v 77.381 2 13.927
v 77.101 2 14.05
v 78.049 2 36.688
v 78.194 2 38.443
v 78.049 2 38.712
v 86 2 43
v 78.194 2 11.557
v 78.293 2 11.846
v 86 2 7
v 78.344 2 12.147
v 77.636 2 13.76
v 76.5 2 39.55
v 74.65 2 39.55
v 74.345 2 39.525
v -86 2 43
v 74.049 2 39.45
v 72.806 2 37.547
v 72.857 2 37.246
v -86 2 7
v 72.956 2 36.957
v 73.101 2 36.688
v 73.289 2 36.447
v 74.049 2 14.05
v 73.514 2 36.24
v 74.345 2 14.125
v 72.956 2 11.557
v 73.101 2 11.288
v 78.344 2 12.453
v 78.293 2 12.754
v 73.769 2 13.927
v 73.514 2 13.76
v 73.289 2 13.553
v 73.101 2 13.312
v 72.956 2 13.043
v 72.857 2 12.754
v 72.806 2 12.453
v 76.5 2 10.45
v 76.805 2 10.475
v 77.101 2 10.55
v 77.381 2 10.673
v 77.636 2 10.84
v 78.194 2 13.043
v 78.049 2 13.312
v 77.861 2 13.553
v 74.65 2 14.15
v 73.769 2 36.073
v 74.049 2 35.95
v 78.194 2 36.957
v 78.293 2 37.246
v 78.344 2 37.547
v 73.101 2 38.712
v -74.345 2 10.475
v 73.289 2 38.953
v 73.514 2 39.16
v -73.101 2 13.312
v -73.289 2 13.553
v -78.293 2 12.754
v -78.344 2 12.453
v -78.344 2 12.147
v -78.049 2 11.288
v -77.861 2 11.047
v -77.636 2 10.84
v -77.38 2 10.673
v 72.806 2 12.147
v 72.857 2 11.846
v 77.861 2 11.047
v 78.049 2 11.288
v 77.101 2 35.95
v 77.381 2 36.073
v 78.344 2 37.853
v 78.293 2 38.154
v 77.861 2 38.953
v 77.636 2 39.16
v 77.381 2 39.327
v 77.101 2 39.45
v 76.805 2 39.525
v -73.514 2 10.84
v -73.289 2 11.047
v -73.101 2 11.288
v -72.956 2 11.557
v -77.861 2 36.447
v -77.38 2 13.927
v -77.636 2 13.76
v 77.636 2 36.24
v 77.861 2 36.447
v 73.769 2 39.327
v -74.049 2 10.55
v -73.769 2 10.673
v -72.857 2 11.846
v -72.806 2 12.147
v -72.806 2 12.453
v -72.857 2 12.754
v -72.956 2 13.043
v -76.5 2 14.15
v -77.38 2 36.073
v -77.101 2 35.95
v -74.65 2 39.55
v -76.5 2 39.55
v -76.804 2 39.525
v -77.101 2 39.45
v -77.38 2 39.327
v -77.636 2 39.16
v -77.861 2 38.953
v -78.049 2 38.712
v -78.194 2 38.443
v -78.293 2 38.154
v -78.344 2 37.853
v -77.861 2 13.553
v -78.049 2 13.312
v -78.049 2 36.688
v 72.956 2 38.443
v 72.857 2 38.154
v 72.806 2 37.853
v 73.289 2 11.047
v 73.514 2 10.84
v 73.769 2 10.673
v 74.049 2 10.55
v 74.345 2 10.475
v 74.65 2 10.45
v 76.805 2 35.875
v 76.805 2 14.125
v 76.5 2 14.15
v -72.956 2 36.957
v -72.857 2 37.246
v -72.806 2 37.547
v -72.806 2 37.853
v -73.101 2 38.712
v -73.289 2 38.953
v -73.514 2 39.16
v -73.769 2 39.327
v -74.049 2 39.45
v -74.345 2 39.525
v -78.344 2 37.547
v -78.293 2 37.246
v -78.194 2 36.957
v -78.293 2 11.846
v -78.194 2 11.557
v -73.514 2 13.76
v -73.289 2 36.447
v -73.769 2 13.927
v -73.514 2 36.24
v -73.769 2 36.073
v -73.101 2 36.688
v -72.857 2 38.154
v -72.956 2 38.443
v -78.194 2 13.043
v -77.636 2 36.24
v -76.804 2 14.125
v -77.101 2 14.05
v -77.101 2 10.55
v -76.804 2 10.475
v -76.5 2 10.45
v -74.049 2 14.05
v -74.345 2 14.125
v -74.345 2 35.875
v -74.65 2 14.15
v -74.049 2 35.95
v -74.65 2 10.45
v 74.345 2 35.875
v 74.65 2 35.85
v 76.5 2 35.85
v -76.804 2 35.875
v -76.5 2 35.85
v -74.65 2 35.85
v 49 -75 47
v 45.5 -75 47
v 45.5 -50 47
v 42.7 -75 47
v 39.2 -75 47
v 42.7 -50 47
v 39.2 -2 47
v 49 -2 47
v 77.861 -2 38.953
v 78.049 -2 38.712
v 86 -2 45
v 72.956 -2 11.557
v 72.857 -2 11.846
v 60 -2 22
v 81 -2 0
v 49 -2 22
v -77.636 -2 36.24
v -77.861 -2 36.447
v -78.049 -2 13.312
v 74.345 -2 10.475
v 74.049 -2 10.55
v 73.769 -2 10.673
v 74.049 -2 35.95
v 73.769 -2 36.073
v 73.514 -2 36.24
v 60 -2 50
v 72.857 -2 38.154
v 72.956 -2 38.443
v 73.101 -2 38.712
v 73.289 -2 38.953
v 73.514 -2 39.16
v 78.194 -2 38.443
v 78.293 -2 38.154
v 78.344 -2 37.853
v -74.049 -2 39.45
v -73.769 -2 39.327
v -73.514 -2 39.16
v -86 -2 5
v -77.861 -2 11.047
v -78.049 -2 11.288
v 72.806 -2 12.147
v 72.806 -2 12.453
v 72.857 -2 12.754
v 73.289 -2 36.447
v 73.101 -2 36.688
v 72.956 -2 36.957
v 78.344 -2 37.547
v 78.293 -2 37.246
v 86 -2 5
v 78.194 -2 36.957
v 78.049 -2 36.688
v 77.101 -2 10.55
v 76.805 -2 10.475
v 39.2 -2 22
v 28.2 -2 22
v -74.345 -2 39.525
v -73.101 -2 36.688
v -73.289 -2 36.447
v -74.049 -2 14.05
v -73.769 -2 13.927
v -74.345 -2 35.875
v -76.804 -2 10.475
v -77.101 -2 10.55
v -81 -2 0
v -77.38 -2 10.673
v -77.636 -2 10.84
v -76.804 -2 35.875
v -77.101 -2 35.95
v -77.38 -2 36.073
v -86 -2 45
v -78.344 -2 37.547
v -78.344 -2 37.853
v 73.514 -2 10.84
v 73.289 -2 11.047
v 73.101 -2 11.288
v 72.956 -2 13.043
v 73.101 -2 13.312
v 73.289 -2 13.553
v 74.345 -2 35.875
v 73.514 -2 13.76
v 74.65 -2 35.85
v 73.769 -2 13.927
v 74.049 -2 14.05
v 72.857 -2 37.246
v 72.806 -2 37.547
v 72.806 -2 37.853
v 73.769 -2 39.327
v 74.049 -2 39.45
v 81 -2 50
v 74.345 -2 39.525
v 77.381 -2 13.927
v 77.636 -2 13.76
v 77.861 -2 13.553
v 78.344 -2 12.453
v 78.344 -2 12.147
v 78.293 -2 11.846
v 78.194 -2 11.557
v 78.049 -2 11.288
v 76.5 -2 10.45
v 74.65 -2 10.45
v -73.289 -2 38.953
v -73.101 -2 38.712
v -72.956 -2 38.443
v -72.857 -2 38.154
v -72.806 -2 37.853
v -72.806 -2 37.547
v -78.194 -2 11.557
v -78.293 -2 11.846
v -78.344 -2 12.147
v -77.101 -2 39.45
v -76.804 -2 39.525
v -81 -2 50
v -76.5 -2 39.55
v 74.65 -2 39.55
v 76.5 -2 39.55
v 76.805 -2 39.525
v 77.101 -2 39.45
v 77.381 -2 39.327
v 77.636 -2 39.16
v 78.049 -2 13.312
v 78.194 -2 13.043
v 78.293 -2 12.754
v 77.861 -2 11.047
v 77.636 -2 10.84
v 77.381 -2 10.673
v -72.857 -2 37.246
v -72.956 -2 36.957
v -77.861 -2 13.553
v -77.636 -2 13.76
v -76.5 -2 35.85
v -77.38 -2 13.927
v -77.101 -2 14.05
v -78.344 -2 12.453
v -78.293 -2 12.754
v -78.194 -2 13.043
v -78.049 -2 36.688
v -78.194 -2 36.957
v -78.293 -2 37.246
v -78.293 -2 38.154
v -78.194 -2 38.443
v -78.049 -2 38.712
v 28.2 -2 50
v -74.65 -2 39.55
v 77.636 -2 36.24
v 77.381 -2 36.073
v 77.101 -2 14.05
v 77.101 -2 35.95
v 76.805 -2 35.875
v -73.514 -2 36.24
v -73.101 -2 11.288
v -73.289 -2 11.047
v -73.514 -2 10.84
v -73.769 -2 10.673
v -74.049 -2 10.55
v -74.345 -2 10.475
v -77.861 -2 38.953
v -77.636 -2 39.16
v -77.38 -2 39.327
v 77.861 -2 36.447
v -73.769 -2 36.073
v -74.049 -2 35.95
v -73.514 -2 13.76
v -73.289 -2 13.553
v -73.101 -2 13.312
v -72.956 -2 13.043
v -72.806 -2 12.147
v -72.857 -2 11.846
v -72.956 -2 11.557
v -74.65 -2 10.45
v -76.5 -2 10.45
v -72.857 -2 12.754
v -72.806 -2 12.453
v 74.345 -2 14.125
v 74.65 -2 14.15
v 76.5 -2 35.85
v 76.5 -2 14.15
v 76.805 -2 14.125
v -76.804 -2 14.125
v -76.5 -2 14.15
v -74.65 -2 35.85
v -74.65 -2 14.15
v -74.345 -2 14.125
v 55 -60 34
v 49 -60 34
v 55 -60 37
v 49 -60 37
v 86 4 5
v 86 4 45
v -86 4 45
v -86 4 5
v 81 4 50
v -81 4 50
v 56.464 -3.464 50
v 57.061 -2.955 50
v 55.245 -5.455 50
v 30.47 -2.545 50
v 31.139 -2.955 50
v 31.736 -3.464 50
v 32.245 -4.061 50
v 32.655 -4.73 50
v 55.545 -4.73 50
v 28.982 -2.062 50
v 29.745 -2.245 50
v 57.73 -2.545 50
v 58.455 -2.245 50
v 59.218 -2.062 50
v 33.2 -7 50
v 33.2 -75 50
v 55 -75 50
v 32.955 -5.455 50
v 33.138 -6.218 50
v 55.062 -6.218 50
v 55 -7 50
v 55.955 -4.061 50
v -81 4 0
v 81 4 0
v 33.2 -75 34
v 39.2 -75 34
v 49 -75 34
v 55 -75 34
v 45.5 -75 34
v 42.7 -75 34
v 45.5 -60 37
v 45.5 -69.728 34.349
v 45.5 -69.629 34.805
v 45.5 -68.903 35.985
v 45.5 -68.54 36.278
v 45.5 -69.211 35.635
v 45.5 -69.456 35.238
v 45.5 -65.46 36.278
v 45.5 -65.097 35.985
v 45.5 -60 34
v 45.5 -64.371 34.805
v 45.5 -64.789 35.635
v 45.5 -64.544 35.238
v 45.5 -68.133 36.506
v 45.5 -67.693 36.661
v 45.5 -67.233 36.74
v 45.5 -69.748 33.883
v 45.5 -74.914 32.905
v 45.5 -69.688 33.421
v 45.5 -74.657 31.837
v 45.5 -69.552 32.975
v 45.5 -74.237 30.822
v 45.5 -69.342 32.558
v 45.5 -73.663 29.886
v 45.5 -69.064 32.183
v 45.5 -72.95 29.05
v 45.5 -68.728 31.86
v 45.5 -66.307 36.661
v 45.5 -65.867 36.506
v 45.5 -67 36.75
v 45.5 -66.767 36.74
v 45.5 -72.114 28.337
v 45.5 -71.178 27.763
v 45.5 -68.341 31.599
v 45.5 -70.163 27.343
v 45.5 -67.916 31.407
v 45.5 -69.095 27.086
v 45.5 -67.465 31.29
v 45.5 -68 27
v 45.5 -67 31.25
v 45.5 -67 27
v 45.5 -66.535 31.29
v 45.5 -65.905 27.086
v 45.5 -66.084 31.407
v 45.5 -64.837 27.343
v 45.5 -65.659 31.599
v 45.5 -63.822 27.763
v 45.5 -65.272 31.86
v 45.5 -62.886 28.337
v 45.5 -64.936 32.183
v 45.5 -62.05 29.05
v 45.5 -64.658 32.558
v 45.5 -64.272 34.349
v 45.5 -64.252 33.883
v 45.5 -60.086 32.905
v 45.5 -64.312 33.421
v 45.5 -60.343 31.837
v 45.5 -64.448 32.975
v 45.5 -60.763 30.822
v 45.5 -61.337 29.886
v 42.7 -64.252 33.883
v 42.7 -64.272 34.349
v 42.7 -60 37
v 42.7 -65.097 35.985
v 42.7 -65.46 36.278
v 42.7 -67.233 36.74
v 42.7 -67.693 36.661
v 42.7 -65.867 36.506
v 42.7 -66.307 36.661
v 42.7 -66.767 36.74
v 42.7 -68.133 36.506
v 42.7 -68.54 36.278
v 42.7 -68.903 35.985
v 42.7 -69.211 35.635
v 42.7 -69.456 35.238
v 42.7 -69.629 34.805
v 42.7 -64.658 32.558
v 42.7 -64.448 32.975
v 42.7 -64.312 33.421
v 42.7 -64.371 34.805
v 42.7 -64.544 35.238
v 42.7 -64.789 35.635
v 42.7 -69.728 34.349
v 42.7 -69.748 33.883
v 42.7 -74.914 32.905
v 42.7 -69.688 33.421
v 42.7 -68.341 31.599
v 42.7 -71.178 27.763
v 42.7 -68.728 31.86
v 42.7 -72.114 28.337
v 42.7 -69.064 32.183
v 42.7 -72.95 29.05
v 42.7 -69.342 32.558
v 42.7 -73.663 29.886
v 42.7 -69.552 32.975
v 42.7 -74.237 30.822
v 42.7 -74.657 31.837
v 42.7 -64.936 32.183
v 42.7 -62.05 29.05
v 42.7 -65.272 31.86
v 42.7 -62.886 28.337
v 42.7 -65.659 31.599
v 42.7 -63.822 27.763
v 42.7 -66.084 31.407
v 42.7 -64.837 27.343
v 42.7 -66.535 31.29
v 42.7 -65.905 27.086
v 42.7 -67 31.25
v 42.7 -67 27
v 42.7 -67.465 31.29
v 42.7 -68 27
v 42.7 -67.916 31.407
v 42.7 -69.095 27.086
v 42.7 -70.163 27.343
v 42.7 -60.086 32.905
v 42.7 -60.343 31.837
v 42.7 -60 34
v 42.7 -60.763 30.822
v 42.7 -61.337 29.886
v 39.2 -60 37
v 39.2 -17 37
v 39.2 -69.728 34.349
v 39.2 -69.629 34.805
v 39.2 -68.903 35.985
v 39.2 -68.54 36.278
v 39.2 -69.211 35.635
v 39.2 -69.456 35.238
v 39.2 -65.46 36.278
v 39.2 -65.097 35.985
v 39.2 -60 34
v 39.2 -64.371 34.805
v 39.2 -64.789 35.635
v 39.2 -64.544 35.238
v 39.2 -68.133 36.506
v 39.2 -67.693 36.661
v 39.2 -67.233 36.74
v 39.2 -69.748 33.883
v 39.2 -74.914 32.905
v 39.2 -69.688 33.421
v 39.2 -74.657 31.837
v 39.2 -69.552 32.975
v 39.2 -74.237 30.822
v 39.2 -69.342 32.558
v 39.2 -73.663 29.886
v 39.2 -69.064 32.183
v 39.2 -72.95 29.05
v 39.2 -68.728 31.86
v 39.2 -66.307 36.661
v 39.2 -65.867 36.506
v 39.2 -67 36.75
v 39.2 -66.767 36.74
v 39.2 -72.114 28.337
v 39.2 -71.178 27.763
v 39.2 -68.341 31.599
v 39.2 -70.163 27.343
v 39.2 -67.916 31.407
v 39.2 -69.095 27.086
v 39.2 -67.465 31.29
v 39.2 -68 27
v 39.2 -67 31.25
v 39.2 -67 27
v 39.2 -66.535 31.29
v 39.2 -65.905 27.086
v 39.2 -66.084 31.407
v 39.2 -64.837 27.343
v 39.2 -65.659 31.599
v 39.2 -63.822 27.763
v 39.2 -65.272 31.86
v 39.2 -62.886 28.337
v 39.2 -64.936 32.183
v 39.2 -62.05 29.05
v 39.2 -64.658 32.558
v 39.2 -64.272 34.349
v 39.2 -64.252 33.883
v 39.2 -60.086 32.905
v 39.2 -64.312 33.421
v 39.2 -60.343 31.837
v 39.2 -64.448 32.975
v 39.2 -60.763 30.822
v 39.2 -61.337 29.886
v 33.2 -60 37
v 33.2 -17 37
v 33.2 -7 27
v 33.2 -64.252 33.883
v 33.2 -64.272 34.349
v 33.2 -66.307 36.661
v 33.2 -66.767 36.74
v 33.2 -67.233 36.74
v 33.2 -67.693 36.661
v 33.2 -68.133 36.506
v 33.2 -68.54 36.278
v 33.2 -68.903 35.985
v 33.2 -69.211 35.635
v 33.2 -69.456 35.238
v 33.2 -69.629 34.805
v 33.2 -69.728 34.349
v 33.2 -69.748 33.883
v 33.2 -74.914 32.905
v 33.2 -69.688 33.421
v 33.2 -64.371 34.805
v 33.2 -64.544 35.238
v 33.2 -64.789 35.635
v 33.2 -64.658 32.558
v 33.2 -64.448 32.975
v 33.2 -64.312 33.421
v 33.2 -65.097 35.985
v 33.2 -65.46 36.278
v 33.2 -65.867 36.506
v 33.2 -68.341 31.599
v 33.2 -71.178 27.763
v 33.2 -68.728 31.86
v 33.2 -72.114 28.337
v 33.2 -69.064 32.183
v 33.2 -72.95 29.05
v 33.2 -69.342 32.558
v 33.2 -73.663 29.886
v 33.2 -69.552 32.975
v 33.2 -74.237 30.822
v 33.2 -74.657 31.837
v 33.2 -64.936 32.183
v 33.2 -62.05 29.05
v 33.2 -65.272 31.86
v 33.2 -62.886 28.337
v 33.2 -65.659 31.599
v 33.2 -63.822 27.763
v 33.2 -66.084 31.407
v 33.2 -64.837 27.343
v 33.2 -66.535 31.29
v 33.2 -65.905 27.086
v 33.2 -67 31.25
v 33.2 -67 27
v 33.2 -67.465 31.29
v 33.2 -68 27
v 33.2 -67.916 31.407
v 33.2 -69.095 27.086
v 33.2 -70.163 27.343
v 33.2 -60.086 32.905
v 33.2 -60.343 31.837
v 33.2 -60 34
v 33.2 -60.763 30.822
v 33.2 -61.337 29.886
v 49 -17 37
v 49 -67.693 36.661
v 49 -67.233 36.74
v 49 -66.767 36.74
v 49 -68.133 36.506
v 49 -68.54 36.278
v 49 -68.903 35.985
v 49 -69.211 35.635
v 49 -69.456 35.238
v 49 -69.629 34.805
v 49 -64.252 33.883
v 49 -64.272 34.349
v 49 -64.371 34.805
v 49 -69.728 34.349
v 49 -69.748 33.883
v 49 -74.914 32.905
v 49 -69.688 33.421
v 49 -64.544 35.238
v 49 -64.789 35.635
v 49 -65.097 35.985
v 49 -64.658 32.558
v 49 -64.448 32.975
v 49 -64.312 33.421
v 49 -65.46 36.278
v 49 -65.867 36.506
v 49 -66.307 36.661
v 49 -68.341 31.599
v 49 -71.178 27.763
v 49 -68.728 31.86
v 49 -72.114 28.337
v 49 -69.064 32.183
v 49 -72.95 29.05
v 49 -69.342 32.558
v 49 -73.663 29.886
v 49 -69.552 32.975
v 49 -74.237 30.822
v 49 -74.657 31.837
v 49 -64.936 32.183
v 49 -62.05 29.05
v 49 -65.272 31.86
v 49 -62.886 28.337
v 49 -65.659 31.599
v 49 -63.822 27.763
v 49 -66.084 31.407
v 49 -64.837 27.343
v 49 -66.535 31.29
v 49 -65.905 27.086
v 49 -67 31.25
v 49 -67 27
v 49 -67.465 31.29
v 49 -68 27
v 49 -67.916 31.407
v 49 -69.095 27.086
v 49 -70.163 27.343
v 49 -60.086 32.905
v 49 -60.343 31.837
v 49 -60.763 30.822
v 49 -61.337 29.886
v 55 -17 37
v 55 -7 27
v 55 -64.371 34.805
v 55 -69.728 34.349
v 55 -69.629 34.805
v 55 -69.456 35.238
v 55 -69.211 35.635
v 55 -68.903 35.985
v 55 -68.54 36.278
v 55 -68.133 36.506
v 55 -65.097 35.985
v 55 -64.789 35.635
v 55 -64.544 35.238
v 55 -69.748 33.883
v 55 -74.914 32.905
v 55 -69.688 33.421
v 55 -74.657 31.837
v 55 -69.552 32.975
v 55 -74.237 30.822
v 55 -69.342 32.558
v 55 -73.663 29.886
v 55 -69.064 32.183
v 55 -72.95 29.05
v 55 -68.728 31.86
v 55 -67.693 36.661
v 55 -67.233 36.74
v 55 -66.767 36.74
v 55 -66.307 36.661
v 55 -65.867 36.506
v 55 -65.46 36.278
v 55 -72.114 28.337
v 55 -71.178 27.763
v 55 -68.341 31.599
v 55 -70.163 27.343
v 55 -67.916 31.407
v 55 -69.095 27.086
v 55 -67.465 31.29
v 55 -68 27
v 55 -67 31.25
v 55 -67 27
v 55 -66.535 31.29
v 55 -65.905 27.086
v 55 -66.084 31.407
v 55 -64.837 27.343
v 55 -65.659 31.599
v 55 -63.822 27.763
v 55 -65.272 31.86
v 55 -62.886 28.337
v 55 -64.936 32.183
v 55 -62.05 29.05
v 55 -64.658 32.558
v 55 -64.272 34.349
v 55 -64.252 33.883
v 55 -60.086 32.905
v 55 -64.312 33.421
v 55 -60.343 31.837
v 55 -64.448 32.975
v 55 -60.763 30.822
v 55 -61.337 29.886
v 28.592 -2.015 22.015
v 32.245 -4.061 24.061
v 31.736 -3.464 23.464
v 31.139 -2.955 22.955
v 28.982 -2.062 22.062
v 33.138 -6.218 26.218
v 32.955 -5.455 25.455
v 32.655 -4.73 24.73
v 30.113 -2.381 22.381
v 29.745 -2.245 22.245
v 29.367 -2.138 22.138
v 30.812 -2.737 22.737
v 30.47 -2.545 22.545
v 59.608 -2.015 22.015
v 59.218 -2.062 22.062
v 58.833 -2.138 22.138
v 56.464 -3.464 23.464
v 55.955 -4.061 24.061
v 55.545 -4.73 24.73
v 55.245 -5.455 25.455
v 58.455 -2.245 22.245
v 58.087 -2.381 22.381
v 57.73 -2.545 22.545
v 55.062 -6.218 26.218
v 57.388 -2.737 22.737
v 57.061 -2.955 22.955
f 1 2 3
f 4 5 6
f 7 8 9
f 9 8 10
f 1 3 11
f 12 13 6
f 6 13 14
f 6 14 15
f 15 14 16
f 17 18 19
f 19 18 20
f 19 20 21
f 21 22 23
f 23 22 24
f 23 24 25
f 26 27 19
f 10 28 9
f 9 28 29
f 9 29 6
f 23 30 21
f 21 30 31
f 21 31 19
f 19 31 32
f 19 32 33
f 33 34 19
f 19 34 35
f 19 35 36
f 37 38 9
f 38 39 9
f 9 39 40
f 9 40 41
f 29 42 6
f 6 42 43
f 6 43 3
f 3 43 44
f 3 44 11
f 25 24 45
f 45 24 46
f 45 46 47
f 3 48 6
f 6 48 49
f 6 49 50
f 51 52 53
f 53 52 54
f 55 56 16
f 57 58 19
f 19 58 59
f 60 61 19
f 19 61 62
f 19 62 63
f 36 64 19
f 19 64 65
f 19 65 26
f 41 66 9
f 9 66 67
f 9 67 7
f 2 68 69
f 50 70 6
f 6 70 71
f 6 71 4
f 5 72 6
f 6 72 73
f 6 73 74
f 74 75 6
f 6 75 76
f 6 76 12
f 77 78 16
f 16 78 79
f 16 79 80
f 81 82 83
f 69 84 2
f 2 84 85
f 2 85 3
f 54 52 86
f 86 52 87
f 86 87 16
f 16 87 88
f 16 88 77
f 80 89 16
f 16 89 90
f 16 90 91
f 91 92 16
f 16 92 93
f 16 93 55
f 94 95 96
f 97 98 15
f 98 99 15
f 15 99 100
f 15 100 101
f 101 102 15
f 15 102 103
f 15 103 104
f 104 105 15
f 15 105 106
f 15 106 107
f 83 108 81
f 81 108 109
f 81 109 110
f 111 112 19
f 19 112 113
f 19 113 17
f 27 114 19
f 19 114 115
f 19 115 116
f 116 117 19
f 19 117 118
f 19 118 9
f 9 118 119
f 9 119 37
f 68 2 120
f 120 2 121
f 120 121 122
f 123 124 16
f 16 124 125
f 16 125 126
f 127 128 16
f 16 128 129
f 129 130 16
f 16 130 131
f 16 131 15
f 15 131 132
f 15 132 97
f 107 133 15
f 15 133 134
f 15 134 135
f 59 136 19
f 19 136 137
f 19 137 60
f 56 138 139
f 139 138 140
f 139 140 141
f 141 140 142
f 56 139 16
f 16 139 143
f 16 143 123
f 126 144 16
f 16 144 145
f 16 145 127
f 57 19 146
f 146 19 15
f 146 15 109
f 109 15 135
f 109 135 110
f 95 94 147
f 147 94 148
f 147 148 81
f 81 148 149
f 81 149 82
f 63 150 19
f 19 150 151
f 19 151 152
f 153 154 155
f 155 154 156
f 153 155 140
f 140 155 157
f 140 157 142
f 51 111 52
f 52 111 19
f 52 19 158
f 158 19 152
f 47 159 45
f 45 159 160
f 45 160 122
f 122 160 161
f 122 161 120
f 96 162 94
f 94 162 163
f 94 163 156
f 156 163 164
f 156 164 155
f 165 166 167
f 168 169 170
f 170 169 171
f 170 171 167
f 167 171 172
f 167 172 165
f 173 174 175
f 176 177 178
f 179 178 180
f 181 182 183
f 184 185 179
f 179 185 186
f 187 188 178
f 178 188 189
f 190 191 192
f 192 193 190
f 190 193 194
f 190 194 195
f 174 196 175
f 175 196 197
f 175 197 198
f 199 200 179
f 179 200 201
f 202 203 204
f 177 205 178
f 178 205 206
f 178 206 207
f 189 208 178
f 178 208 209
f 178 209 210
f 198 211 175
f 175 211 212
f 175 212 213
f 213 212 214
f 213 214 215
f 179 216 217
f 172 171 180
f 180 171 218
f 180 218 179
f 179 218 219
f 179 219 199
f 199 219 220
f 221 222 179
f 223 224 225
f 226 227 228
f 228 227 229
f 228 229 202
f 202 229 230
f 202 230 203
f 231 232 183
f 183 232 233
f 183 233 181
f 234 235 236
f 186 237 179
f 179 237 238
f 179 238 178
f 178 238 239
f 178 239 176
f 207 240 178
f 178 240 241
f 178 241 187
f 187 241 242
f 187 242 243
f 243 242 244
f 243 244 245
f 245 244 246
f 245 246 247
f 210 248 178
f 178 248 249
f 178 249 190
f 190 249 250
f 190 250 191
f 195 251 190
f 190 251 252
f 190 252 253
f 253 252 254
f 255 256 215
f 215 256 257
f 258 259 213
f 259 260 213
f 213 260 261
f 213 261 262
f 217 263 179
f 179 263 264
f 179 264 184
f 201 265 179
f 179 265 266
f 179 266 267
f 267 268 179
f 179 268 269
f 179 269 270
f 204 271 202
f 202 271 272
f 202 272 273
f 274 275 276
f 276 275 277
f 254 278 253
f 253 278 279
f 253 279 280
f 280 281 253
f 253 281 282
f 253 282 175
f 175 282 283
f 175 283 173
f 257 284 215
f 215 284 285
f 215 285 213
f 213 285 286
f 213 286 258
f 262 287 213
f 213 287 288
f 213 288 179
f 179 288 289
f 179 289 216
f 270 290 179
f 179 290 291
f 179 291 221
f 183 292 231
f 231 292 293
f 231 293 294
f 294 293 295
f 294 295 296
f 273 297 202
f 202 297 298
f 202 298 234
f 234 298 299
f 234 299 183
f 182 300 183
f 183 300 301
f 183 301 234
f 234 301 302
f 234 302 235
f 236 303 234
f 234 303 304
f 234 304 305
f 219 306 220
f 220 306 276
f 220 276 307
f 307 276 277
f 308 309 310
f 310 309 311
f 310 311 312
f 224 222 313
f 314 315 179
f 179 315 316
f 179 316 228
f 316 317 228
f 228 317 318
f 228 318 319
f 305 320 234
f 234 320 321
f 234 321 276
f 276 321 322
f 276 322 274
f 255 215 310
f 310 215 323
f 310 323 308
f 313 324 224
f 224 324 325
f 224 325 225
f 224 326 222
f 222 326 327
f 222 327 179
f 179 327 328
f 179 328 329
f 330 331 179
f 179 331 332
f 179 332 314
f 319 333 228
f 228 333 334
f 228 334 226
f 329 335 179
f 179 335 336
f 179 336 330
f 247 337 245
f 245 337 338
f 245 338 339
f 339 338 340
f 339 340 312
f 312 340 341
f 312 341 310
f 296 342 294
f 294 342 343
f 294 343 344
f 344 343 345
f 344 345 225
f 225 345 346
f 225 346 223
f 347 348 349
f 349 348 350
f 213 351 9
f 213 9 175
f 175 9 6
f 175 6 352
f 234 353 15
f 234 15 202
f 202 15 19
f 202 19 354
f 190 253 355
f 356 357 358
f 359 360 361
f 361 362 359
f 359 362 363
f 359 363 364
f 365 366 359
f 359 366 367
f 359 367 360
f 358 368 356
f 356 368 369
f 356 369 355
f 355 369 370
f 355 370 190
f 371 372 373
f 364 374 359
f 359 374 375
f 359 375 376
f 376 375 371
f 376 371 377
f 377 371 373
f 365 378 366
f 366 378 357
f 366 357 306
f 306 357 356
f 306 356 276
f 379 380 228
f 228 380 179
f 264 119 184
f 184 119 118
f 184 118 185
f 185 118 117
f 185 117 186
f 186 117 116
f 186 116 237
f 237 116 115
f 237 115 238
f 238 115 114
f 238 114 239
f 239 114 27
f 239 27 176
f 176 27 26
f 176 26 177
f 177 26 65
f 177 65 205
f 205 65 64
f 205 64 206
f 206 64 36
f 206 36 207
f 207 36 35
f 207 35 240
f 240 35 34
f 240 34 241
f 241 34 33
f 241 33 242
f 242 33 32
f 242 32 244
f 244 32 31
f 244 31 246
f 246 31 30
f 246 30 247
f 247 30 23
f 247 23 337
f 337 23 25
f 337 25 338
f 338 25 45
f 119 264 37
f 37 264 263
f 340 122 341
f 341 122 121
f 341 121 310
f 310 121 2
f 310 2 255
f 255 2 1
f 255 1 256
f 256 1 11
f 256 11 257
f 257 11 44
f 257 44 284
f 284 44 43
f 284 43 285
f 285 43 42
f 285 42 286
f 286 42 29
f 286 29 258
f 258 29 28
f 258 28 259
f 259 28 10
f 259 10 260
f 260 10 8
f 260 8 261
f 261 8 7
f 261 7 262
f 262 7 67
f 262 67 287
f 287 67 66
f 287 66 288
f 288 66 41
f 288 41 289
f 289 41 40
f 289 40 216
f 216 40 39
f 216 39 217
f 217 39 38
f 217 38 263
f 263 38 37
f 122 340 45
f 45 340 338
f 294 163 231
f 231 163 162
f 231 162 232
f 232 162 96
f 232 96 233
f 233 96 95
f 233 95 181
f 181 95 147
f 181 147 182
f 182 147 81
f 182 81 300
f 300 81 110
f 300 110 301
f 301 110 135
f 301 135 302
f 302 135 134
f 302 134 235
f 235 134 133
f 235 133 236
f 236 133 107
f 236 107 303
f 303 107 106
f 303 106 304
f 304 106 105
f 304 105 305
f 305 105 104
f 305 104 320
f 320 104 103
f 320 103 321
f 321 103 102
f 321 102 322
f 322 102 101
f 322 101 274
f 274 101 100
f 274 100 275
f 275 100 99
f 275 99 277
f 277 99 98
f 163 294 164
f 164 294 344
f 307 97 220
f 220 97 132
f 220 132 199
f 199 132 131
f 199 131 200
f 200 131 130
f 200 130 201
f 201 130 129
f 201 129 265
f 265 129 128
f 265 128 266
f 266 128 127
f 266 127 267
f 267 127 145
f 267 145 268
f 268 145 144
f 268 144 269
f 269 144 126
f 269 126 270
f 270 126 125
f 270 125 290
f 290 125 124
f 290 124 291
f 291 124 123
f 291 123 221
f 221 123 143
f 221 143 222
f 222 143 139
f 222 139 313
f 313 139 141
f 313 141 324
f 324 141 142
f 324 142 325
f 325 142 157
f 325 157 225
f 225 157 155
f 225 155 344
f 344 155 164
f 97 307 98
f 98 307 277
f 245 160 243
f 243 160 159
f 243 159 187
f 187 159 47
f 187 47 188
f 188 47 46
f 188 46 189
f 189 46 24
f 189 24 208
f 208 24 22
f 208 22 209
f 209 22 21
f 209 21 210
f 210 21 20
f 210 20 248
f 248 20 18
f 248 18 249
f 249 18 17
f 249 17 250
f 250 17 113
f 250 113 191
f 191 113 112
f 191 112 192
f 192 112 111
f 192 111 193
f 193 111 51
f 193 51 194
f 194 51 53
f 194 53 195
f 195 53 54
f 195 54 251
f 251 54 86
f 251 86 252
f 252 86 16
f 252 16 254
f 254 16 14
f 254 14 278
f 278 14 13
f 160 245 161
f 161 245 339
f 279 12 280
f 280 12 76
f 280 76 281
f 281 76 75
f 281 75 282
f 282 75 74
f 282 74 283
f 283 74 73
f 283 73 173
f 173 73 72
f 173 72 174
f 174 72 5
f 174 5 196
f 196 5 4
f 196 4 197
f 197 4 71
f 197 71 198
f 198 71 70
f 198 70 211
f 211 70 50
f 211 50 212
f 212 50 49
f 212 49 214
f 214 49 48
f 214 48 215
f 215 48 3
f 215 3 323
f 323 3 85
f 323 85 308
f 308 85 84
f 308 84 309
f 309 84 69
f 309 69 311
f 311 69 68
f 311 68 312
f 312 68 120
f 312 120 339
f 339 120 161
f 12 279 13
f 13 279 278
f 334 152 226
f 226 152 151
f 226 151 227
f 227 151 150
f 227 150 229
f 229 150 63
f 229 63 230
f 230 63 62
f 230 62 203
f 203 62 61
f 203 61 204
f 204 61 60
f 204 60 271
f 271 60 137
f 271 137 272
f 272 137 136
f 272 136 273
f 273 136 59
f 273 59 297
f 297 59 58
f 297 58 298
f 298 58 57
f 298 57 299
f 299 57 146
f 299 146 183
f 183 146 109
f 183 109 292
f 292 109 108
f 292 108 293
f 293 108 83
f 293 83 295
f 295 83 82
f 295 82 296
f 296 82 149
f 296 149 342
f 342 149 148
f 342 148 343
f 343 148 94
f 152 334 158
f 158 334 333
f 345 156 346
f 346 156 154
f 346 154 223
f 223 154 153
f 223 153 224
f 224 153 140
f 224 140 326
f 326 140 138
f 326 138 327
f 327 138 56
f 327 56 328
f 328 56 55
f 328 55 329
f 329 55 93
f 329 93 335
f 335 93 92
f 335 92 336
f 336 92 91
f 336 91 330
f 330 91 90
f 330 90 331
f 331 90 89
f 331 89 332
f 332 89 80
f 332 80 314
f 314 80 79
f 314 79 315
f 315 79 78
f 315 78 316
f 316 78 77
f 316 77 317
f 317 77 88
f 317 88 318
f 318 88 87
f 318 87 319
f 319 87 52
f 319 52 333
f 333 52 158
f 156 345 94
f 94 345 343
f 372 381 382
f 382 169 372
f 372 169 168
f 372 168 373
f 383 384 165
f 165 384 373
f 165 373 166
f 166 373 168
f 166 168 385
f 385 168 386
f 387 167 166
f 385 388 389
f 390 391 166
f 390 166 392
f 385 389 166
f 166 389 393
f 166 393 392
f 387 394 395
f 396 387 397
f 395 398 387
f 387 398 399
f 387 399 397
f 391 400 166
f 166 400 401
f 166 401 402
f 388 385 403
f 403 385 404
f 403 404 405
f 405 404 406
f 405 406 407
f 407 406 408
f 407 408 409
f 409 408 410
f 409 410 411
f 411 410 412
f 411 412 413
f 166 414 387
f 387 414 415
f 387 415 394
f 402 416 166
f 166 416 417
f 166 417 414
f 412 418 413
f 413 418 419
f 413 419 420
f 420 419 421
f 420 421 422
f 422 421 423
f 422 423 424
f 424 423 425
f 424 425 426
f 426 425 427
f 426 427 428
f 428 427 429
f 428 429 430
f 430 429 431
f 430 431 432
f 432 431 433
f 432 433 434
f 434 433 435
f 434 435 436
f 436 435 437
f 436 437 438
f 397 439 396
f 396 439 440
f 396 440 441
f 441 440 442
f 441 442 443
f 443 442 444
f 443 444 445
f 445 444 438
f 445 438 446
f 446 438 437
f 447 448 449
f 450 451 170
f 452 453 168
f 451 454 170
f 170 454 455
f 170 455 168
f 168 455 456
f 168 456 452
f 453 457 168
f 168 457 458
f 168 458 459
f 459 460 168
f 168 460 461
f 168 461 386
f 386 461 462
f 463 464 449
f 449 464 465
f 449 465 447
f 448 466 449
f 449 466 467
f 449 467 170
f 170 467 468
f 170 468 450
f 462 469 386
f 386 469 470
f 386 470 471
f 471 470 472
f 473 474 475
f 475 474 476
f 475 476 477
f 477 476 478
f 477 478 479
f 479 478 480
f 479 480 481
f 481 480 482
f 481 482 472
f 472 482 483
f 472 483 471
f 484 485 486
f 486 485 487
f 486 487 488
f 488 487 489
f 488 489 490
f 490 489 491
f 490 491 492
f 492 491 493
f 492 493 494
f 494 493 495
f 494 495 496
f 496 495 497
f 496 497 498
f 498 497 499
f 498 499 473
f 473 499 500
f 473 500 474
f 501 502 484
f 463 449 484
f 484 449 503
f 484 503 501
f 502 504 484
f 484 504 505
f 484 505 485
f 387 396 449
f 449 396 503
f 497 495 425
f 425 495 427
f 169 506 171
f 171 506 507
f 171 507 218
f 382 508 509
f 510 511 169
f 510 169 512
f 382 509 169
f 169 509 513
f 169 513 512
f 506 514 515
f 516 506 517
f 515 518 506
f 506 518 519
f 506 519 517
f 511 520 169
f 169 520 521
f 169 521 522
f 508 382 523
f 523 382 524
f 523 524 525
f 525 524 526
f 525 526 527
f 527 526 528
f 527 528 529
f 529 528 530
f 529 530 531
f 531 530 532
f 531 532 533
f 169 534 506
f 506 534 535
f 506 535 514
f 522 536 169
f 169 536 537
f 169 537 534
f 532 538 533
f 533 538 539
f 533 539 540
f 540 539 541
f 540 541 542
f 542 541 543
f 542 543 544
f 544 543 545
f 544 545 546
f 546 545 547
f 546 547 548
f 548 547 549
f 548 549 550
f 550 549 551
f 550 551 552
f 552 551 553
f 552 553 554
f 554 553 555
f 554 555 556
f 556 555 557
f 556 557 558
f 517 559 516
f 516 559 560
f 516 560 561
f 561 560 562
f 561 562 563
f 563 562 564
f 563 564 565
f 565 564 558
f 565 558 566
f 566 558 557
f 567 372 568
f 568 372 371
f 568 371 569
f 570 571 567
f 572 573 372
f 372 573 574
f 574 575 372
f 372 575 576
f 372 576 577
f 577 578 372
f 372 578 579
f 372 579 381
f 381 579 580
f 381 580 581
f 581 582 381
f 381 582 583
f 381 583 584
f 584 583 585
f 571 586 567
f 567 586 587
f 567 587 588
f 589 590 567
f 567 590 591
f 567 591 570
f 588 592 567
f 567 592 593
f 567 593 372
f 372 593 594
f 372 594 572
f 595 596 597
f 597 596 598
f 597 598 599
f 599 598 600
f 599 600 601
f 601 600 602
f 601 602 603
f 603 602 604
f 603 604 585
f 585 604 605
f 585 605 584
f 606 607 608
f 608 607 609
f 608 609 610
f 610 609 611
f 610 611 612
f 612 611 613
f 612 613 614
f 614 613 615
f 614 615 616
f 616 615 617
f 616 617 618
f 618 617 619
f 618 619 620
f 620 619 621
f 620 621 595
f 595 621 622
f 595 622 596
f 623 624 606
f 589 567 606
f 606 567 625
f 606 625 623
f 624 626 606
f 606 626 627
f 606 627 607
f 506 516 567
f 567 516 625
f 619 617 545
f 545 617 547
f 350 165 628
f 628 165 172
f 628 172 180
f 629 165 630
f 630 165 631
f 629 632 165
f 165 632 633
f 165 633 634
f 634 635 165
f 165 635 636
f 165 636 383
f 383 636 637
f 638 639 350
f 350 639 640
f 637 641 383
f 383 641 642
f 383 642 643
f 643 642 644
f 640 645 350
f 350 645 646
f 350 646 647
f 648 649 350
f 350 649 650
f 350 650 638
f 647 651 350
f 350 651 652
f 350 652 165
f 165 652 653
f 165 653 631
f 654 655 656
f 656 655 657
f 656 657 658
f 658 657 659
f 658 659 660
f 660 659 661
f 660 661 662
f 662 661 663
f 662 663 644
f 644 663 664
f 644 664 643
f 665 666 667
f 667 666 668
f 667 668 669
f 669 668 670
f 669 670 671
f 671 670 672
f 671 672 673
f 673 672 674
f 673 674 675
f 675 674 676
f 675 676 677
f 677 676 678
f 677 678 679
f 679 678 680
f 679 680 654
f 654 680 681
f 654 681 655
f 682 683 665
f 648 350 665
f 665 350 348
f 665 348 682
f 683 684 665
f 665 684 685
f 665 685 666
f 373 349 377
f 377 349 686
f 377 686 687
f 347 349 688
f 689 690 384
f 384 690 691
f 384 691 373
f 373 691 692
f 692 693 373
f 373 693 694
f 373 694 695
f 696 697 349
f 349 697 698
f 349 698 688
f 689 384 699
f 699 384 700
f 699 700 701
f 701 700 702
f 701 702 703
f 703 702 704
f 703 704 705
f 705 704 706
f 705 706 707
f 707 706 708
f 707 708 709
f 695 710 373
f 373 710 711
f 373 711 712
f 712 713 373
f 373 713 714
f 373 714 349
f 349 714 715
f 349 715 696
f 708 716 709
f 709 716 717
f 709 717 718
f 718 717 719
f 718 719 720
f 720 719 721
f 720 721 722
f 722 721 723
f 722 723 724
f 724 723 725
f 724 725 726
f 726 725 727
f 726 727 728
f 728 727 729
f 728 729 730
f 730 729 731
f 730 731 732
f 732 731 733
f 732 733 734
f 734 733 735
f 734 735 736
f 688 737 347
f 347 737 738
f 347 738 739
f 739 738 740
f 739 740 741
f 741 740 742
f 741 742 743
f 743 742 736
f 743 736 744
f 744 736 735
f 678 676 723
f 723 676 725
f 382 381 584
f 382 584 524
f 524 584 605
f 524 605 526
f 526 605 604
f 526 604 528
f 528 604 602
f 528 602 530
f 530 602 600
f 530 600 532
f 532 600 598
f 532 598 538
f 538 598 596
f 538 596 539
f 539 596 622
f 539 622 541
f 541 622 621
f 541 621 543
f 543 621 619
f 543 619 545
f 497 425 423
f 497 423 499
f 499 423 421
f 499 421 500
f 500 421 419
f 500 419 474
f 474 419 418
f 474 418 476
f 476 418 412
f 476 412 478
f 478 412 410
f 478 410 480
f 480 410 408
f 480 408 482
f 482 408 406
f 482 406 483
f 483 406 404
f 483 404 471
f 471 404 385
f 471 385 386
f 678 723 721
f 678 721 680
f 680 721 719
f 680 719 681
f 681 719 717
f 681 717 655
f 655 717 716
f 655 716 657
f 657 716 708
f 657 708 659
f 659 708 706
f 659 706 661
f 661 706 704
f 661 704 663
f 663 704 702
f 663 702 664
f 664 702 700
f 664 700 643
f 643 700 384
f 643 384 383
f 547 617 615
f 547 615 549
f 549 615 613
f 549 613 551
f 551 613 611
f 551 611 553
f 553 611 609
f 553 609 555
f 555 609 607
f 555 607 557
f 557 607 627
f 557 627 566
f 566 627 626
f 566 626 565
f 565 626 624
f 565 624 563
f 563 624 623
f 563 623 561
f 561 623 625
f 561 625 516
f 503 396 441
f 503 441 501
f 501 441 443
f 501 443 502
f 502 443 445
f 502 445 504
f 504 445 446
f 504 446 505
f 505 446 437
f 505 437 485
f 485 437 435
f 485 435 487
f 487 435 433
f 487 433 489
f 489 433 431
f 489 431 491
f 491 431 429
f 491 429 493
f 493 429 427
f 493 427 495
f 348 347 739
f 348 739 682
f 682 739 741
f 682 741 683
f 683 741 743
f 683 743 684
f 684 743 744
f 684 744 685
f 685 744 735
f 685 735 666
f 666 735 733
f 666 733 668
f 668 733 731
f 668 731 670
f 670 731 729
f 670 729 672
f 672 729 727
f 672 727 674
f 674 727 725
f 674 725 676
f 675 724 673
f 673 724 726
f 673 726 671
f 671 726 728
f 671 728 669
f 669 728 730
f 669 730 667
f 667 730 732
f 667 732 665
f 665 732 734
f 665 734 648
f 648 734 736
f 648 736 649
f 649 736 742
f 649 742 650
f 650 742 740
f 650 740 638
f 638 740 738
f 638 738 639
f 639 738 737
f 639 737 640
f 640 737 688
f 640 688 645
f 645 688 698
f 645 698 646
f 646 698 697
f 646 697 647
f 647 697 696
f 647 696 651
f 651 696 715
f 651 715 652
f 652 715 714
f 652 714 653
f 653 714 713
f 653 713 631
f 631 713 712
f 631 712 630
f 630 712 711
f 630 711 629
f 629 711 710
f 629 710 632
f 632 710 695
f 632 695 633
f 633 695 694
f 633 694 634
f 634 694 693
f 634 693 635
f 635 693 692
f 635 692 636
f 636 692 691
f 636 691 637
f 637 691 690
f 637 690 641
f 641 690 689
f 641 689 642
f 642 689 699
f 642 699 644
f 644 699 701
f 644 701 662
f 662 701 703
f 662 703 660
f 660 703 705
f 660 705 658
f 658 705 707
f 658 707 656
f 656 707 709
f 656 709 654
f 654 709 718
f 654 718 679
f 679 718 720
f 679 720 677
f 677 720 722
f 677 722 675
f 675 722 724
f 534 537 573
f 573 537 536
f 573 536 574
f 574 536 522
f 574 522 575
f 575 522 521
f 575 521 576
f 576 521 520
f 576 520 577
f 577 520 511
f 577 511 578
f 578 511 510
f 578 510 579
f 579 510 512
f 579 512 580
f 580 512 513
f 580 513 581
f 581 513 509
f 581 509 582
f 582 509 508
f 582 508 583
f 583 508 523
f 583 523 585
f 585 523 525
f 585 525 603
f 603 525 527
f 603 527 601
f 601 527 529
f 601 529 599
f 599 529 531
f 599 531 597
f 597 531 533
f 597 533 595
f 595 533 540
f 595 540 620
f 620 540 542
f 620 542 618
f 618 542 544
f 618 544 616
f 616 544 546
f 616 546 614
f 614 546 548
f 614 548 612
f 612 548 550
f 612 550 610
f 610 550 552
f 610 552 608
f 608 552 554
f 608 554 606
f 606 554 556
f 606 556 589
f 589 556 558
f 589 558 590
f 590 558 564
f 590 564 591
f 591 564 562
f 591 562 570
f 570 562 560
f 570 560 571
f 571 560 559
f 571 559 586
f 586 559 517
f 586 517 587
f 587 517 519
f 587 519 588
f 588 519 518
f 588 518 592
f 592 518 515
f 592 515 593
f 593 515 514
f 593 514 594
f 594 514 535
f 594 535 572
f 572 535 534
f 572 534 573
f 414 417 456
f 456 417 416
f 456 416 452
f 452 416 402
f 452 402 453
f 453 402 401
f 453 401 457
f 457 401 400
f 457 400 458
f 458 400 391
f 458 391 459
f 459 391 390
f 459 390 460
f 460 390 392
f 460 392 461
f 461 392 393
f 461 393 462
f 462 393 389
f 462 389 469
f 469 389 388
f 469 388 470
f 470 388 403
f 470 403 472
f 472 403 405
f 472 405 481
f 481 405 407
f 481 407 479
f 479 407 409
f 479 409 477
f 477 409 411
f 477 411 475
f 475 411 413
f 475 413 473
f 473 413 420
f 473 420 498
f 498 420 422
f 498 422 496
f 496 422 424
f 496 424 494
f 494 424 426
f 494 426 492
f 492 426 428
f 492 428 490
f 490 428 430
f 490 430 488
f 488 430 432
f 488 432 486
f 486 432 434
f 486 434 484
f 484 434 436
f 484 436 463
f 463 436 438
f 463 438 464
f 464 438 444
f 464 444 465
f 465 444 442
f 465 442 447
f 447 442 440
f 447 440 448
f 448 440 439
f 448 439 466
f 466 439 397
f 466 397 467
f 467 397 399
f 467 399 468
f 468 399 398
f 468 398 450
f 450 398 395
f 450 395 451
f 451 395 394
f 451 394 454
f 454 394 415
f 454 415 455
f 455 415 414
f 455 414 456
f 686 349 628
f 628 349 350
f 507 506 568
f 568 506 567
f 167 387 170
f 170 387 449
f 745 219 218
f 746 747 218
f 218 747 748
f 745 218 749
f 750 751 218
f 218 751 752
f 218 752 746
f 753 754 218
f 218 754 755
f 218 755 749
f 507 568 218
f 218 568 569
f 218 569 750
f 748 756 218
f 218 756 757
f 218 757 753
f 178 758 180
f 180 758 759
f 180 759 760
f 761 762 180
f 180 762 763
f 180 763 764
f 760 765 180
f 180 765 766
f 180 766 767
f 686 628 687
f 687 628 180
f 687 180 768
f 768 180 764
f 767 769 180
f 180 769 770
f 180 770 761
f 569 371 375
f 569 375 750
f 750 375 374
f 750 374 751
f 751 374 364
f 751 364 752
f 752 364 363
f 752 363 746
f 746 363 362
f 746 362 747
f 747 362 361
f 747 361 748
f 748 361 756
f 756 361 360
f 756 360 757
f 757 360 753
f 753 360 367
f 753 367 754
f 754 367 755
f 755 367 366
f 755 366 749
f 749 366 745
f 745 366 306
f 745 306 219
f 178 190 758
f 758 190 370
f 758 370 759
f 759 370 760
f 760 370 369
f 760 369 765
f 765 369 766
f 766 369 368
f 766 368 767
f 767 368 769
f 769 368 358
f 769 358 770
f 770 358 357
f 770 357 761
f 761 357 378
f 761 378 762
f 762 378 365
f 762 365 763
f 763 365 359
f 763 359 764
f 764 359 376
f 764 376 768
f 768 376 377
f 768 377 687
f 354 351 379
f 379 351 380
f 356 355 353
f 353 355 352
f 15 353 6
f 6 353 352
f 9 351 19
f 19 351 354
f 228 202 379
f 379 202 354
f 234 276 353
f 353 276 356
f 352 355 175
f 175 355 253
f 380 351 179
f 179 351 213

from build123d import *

# Parameters (mm, degrees)
SKETCH1_W           = 172
SKETCH1_H           = 4
BOSS_EXTRUDE1_DEPTH = 50
CUT_EXTRUDE1_DEPTH  = 50
SKETCH3_W           = 35
SKETCH3_H           = 73
BOSS_EXTRUDE2_DEPTH = 3
SKETCH4_W           = 2.8
SKETCH4_H           = 15
SKETCH4_W_2         = 6
BOSS_EXTRUDE3_DEPTH = 20
FILLET1_R           = 7
SKETCH5_R           = 2.75
CUT_EXTRUDE2_DEPTH  = 30
SKETCH6_W           = 5.6
SKETCH6_H           = 73
SKETCH6_W_2         = 7.6
CUT_EXTRUDE3_DEPTH  = 20
SKETCH7_W           = 6
SKETCH7_H           = 58
BOSS_EXTRUDE4_DEPTH = 10
CHAMFER1_SIZE       = 10
CHAMFER2_SIZE       = 15
FILLET2_R           = 5
SKETCH8_W           = 172
SKETCH8_H           = 4
BOSS_EXTRUDE5_DEPTH = 2
CHAMFER3_SIZE       = 3
CHAMFER4_SIZE       = 5


with BuildPart() as part:
    # Sketch1 → Boss-Extrude1 (new body)
    with BuildSketch(Plane.XY):
        Rectangle(SKETCH1_W, SKETCH1_H)
    extrude(amount=BOSS_EXTRUDE1_DEPTH)

    # Sketch2 → Cut-Extrude1 (cut)
    with BuildSketch(Plane(origin=(0, 2, 0), x_dir=(1, 0, 0), z_dir=(0, 1, 0))):
        with BuildLine():
            Line((-76.5, -10.45), (-74.65, -10.45))
            ThreePointArc((-74.65, -10.45), (-72.8, -12.3), (-74.65, -14.15))
            Line((-74.65, -14.15), (-76.5, -14.15))
            ThreePointArc((-76.5, -14.15), (-78.35, -12.3), (-76.5, -10.45))
        make_face()
        with BuildLine():
            Line((74.65, -10.45), (76.5, -10.45))
            ThreePointArc((76.5, -10.45), (78.35, -12.3), (76.5, -14.15))
            Line((76.5, -14.15), (74.65, -14.15))
            ThreePointArc((74.65, -14.15), (72.8, -12.3), (74.65, -10.45))
        make_face()
        with BuildLine():
            Line((-76.5, -35.85), (-74.65, -35.85))
            ThreePointArc((-74.65, -35.85), (-72.8, -37.7), (-74.65, -39.55))
            Line((-74.65, -39.55), (-76.5, -39.55))
            ThreePointArc((-76.5, -39.55), (-78.35, -37.7), (-76.5, -35.85))
        make_face()
        with BuildLine():
            Line((74.65, -35.85), (76.5, -35.85))
            ThreePointArc((76.5, -35.85), (78.35, -37.7), (76.5, -39.55))
            Line((76.5, -39.55), (74.65, -39.55))
            ThreePointArc((74.65, -39.55), (72.8, -37.7), (74.65, -35.85))
        make_face()
    extrude(amount=-CUT_EXTRUDE1_DEPTH, mode=Mode.SUBTRACT)

    # Sketch3 → Boss-Extrude2 (add)
    with BuildSketch(Plane.XY.offset(50)):
        with Locations((43.1, -38.5)):
            Rectangle(SKETCH3_W, SKETCH3_H)
    extrude(amount=-BOSS_EXTRUDE2_DEPTH)

    # Sketch4 → Boss-Extrude3 (add)
    with BuildSketch(Plane(origin=(0, 0, 47), x_dir=(-1, 0, 0), z_dir=(0, 0, -1))):
        with Locations((-44.1, -67.5)):
            Rectangle(SKETCH4_W, SKETCH4_H)
        with Locations((-36.2, -67.5)):
            Rectangle(SKETCH4_W_2, SKETCH4_H)
        with Locations((-52, -67.5)):
            Rectangle(SKETCH4_W_2, SKETCH4_H)
    extrude(amount=BOSS_EXTRUDE3_DEPTH)

    # Fillet1
    fillet1_edges = [part.edges().sort_by_distance(p)[0] for p in [
        (44.1, -75, 27),
        (44.1, -60, 27),
        (36.2, -75, 27),
        (36.2, -60, 27),
        (52, -60, 27),
        (52, -75, 27),
    ]]
    fillet(fillet1_edges, radius=FILLET1_R)

    # Sketch5 → Cut-Extrude2 (cut)
    with BuildSketch(Plane(origin=(55, 0, 0), x_dir=(0, 0, -1), z_dir=(1, 0, 0))):
        with Locations((-34, -67)):
            Circle(SKETCH5_R)
    extrude(amount=-CUT_EXTRUDE2_DEPTH, mode=Mode.SUBTRACT)

    # Sketch6 → Cut-Extrude3 (cut)
    with BuildSketch(Plane(origin=(0, 0, 47), x_dir=(-1, 0, 0), z_dir=(0, 0, -1))):
        with Locations((-57.8, -38.5)):
            Rectangle(SKETCH6_W, SKETCH6_H)
        with Locations((-29.4, -38.5)):
            Rectangle(SKETCH6_W_2, SKETCH6_H)
    extrude(amount=-CUT_EXTRUDE3_DEPTH, mode=Mode.SUBTRACT)

    # Sketch7 → Boss-Extrude4 (add)
    with BuildSketch(Plane(origin=(0, 0, 47), x_dir=(-1, 0, 0), z_dir=(0, 0, -1))):
        with Locations((-52, -31)):
            Rectangle(SKETCH7_W, SKETCH7_H)
        with Locations((-36.2, -31)):
            Rectangle(SKETCH7_W, SKETCH7_H)
    extrude(amount=BOSS_EXTRUDE4_DEPTH)

    # Chamfer1
    chamfer1_edges = [part.edges().sort_by_distance(p)[0] for p in [
        (44.1, -60, 47),
    ]]
    chamfer(chamfer1_edges, length=CHAMFER1_SIZE)

    # Chamfer2
    chamfer2_edges = [part.edges().sort_by_distance(p)[0] for p in [
        (52, -2, 37),
        (36.2, -2, 37),
    ]]
    chamfer(chamfer2_edges, length=CHAMFER2_SIZE)

    # Fillet2
    fillet2_edges = [part.edges().sort_by_distance(p)[0] for p in [
        (55, -2, 36),
        (33.2, -2, 36),
    ]]
    fillet(fillet2_edges, radius=FILLET2_R)

    # Sketch8 → Boss-Extrude5 (add)
    with BuildSketch(Plane(origin=(0, 2, 0), x_dir=(1, 0, 0), z_dir=(0, 1, 0))):
        with Locations((0, -2)):
            Rectangle(SKETCH8_W, SKETCH8_H)
        with Locations((0, -48)):
            Rectangle(SKETCH8_W, SKETCH8_H)
    extrude(amount=BOSS_EXTRUDE5_DEPTH)

    # Chamfer3
    # the kernel refuses this chamfer: 3 mm, written as the material it adds along each edge
    with BuildSketch(Plane(origin=(-86, 2, 46), x_dir=(0, -0.027495876610586334, -0.9996219169112968), z_dir=(1, 0, 0))) as chamfer3_piece_1_section:
        Polygon((CHAMFER3_SIZE * 0.999621916911, CHAMFER3_SIZE * 0.0274958766106), (-CHAMFER3_SIZE * 0.0274958766106, CHAMFER3_SIZE * 0.999621916911), (0, 0), align=None)
    chamfer3_piece_1 = extrude(amount=172, mode=Mode.PRIVATE)
    chamfer3_piece_1 = split(chamfer3_piece_1, bisect_by=Plane(origin=(0, 4, 44.907908995), z_dir=(0, -1, 0)), keep=Keep.TOP, mode=Mode.PRIVATE)
    add(chamfer3_piece_1)
    with BuildSketch(Plane(origin=(86, 2, 4), x_dir=(0, -0.02749587661058634, 0.9996219169112968), z_dir=(-1, 0, 0))) as chamfer3_piece_2_section:
        Polygon((CHAMFER3_SIZE * 0.999621916911, CHAMFER3_SIZE * 0.0274958766106), (-CHAMFER3_SIZE * 0.0274958766106, CHAMFER3_SIZE * 0.999621916911), (0, 0), align=None)
    chamfer3_piece_2 = extrude(amount=172, mode=Mode.PRIVATE)
    chamfer3_piece_2 = split(chamfer3_piece_2, bisect_by=Plane(origin=(0, 4, 5.092091005), z_dir=(0, -1, 0)), keep=Keep.TOP, mode=Mode.PRIVATE)
    add(chamfer3_piece_2)

    # Chamfer4
    chamfer4_edges = [part.edges().sort_by_distance(p)[0] for p in [
        (-86, 1, 0),
        (-86, 1, 50),
        (86, 1, 50),
        (86, 1, 0),
    ]]
    chamfer(chamfer4_edges, length=CHAMFER4_SIZE)


solid = part.part
